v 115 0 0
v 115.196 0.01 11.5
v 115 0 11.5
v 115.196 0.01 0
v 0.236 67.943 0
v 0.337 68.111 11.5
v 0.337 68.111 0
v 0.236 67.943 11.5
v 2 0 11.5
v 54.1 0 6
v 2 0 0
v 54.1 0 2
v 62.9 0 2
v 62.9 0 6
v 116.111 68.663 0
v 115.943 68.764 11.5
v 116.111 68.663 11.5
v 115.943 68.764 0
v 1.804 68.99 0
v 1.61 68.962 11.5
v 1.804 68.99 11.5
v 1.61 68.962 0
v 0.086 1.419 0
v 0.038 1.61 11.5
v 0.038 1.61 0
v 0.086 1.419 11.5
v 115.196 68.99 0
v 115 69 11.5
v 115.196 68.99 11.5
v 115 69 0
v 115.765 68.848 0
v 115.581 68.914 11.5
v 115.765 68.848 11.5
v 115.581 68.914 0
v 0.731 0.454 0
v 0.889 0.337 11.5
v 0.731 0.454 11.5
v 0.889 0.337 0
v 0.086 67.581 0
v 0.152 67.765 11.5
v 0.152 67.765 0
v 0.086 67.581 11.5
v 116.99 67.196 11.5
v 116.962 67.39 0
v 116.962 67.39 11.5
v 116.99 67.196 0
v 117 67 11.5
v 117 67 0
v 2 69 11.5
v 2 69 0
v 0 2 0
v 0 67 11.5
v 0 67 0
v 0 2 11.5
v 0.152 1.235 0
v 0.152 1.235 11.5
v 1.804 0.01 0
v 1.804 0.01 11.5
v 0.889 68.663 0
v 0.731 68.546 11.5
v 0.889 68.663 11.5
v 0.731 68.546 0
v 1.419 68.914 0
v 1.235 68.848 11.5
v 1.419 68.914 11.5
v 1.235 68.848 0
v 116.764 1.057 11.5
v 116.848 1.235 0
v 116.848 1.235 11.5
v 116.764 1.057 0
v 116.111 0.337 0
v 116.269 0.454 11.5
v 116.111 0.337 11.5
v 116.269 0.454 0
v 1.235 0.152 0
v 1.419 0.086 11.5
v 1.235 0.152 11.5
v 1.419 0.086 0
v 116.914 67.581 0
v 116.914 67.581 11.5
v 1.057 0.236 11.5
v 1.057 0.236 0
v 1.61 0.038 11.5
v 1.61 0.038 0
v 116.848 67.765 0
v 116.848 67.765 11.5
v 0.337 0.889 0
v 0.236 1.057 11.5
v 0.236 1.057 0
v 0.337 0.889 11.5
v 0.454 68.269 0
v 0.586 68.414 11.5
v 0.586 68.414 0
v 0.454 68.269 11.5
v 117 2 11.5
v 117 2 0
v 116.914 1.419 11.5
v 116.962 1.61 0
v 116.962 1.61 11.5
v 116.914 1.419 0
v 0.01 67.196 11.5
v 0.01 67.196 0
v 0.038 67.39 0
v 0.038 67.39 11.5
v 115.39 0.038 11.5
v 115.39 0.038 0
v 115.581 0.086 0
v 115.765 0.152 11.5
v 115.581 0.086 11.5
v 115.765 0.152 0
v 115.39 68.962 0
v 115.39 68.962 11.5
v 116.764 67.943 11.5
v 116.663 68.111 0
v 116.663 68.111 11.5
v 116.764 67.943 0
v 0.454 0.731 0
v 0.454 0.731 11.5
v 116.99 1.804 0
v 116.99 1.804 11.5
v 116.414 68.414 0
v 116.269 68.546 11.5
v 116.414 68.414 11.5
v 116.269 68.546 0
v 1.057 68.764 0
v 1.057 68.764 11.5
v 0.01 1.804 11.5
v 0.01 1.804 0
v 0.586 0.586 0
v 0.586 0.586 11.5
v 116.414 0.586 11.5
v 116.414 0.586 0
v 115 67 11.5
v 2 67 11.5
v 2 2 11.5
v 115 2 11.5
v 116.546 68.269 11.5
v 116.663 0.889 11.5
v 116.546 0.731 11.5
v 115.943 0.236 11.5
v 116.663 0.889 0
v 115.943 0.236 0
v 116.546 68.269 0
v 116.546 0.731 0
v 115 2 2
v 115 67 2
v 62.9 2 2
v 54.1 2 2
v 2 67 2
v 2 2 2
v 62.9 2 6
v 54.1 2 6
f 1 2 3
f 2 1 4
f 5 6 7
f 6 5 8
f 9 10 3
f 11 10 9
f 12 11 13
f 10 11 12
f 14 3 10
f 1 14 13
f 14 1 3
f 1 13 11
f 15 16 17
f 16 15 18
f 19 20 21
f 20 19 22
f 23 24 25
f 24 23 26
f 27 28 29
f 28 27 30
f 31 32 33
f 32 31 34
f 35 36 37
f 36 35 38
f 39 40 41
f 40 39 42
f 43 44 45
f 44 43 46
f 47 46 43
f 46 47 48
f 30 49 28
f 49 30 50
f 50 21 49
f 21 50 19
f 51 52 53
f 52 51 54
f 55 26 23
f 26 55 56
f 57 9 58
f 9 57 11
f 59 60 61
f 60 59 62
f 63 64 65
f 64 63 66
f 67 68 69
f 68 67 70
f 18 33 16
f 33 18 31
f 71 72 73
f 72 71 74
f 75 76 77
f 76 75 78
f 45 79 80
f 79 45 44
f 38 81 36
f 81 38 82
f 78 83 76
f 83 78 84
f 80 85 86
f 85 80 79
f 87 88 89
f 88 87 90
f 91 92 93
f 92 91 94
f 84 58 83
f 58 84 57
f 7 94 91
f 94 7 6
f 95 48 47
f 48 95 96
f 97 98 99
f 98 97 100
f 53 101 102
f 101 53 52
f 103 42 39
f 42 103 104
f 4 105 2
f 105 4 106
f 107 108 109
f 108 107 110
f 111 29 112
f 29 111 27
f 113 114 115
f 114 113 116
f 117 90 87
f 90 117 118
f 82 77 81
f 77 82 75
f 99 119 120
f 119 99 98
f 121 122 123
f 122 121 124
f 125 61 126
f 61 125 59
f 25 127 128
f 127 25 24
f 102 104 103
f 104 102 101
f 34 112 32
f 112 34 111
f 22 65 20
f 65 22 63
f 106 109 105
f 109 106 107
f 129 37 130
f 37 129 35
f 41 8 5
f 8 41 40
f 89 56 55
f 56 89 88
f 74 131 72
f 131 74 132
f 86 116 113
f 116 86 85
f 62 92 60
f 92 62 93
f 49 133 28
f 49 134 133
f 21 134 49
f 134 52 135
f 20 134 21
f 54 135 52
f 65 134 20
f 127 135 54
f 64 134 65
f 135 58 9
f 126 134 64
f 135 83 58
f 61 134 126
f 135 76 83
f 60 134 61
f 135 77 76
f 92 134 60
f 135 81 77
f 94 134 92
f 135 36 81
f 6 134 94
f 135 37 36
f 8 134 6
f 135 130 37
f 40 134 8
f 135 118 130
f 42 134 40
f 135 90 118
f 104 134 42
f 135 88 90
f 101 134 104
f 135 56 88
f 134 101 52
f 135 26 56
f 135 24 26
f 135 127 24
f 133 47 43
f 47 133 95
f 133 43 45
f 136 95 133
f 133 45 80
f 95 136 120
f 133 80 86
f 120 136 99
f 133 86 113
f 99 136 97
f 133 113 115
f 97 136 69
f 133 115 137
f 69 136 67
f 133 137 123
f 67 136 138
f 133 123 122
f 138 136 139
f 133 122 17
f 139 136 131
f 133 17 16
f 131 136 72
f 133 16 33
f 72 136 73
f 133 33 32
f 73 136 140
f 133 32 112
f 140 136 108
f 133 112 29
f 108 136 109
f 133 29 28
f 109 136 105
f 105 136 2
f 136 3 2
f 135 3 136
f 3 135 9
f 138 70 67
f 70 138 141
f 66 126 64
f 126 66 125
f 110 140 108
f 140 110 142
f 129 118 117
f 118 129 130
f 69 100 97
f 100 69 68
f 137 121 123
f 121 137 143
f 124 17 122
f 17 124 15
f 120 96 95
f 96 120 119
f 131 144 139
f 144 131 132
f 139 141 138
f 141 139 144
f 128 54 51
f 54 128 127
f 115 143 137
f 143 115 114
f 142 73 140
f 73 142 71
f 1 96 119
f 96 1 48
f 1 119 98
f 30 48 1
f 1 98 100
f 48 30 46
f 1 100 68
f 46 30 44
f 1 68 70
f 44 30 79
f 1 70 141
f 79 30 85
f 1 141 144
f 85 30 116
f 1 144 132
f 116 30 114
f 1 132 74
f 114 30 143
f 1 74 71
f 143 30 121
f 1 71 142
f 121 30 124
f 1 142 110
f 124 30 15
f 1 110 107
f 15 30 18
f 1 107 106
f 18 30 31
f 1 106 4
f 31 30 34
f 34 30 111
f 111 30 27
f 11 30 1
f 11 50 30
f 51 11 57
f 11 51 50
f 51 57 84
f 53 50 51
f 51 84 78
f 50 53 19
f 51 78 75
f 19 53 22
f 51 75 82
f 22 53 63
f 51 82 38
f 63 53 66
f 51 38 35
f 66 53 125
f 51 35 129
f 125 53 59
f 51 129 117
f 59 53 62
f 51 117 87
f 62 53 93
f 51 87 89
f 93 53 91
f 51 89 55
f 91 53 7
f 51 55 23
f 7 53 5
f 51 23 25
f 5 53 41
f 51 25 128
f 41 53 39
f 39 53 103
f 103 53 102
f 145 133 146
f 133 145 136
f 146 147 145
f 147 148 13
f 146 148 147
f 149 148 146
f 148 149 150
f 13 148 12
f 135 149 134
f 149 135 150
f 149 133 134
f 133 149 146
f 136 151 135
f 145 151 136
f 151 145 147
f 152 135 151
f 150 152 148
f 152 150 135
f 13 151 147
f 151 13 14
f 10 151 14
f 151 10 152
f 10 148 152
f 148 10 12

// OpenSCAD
// Touchpad open-top case model (units: mm)
// Dimensions per docs/case_notes.md

$fn = 64;

// Inner cavity (fits touchpad)
inner_length = 113;
inner_width  = 65;
inner_height = 9.5;

wall_thickness  = 2;
bottom_thickness = 2;

// USB opening on front wall (long side)
usb_width  = 8.8; // horizontal (X)
usb_height = 4;   // vertical (Z)

outer_length = inner_length + 2 * wall_thickness;
outer_width  = inner_width  + 2 * wall_thickness;
outer_height = inner_height + bottom_thickness; // open top
fillet_radius = 2; // outer vertical edge fillet

module case_body() {
  // Outer shell with filleted vertical edges
  linear_extrude(height = outer_height) {
    offset(r = fillet_radius)
      offset(r = -fillet_radius)
        square([outer_length, outer_width], center = false);
  }
}

module inner_cavity() {
  // Subtract inner cavity (open top)
  translate([wall_thickness, wall_thickness, bottom_thickness]) {
    cube([inner_length, inner_width, inner_height], center = false);
  }
}

module usb_opening() {
  // Front wall is the long side at Y=0
  usb_x = outer_length / 2 - usb_width / 2;
  usb_y = -0.1; // ensure full cut through wall
  usb_z = bottom_thickness; // bottom edge flush with inner floor
  translate([usb_x, usb_y, usb_z]) {
    cube([usb_width, wall_thickness + 0.2, usb_height], center = false);
  }
}

difference() {
  case_body();
  inner_cavity();
  usb_opening();
}
